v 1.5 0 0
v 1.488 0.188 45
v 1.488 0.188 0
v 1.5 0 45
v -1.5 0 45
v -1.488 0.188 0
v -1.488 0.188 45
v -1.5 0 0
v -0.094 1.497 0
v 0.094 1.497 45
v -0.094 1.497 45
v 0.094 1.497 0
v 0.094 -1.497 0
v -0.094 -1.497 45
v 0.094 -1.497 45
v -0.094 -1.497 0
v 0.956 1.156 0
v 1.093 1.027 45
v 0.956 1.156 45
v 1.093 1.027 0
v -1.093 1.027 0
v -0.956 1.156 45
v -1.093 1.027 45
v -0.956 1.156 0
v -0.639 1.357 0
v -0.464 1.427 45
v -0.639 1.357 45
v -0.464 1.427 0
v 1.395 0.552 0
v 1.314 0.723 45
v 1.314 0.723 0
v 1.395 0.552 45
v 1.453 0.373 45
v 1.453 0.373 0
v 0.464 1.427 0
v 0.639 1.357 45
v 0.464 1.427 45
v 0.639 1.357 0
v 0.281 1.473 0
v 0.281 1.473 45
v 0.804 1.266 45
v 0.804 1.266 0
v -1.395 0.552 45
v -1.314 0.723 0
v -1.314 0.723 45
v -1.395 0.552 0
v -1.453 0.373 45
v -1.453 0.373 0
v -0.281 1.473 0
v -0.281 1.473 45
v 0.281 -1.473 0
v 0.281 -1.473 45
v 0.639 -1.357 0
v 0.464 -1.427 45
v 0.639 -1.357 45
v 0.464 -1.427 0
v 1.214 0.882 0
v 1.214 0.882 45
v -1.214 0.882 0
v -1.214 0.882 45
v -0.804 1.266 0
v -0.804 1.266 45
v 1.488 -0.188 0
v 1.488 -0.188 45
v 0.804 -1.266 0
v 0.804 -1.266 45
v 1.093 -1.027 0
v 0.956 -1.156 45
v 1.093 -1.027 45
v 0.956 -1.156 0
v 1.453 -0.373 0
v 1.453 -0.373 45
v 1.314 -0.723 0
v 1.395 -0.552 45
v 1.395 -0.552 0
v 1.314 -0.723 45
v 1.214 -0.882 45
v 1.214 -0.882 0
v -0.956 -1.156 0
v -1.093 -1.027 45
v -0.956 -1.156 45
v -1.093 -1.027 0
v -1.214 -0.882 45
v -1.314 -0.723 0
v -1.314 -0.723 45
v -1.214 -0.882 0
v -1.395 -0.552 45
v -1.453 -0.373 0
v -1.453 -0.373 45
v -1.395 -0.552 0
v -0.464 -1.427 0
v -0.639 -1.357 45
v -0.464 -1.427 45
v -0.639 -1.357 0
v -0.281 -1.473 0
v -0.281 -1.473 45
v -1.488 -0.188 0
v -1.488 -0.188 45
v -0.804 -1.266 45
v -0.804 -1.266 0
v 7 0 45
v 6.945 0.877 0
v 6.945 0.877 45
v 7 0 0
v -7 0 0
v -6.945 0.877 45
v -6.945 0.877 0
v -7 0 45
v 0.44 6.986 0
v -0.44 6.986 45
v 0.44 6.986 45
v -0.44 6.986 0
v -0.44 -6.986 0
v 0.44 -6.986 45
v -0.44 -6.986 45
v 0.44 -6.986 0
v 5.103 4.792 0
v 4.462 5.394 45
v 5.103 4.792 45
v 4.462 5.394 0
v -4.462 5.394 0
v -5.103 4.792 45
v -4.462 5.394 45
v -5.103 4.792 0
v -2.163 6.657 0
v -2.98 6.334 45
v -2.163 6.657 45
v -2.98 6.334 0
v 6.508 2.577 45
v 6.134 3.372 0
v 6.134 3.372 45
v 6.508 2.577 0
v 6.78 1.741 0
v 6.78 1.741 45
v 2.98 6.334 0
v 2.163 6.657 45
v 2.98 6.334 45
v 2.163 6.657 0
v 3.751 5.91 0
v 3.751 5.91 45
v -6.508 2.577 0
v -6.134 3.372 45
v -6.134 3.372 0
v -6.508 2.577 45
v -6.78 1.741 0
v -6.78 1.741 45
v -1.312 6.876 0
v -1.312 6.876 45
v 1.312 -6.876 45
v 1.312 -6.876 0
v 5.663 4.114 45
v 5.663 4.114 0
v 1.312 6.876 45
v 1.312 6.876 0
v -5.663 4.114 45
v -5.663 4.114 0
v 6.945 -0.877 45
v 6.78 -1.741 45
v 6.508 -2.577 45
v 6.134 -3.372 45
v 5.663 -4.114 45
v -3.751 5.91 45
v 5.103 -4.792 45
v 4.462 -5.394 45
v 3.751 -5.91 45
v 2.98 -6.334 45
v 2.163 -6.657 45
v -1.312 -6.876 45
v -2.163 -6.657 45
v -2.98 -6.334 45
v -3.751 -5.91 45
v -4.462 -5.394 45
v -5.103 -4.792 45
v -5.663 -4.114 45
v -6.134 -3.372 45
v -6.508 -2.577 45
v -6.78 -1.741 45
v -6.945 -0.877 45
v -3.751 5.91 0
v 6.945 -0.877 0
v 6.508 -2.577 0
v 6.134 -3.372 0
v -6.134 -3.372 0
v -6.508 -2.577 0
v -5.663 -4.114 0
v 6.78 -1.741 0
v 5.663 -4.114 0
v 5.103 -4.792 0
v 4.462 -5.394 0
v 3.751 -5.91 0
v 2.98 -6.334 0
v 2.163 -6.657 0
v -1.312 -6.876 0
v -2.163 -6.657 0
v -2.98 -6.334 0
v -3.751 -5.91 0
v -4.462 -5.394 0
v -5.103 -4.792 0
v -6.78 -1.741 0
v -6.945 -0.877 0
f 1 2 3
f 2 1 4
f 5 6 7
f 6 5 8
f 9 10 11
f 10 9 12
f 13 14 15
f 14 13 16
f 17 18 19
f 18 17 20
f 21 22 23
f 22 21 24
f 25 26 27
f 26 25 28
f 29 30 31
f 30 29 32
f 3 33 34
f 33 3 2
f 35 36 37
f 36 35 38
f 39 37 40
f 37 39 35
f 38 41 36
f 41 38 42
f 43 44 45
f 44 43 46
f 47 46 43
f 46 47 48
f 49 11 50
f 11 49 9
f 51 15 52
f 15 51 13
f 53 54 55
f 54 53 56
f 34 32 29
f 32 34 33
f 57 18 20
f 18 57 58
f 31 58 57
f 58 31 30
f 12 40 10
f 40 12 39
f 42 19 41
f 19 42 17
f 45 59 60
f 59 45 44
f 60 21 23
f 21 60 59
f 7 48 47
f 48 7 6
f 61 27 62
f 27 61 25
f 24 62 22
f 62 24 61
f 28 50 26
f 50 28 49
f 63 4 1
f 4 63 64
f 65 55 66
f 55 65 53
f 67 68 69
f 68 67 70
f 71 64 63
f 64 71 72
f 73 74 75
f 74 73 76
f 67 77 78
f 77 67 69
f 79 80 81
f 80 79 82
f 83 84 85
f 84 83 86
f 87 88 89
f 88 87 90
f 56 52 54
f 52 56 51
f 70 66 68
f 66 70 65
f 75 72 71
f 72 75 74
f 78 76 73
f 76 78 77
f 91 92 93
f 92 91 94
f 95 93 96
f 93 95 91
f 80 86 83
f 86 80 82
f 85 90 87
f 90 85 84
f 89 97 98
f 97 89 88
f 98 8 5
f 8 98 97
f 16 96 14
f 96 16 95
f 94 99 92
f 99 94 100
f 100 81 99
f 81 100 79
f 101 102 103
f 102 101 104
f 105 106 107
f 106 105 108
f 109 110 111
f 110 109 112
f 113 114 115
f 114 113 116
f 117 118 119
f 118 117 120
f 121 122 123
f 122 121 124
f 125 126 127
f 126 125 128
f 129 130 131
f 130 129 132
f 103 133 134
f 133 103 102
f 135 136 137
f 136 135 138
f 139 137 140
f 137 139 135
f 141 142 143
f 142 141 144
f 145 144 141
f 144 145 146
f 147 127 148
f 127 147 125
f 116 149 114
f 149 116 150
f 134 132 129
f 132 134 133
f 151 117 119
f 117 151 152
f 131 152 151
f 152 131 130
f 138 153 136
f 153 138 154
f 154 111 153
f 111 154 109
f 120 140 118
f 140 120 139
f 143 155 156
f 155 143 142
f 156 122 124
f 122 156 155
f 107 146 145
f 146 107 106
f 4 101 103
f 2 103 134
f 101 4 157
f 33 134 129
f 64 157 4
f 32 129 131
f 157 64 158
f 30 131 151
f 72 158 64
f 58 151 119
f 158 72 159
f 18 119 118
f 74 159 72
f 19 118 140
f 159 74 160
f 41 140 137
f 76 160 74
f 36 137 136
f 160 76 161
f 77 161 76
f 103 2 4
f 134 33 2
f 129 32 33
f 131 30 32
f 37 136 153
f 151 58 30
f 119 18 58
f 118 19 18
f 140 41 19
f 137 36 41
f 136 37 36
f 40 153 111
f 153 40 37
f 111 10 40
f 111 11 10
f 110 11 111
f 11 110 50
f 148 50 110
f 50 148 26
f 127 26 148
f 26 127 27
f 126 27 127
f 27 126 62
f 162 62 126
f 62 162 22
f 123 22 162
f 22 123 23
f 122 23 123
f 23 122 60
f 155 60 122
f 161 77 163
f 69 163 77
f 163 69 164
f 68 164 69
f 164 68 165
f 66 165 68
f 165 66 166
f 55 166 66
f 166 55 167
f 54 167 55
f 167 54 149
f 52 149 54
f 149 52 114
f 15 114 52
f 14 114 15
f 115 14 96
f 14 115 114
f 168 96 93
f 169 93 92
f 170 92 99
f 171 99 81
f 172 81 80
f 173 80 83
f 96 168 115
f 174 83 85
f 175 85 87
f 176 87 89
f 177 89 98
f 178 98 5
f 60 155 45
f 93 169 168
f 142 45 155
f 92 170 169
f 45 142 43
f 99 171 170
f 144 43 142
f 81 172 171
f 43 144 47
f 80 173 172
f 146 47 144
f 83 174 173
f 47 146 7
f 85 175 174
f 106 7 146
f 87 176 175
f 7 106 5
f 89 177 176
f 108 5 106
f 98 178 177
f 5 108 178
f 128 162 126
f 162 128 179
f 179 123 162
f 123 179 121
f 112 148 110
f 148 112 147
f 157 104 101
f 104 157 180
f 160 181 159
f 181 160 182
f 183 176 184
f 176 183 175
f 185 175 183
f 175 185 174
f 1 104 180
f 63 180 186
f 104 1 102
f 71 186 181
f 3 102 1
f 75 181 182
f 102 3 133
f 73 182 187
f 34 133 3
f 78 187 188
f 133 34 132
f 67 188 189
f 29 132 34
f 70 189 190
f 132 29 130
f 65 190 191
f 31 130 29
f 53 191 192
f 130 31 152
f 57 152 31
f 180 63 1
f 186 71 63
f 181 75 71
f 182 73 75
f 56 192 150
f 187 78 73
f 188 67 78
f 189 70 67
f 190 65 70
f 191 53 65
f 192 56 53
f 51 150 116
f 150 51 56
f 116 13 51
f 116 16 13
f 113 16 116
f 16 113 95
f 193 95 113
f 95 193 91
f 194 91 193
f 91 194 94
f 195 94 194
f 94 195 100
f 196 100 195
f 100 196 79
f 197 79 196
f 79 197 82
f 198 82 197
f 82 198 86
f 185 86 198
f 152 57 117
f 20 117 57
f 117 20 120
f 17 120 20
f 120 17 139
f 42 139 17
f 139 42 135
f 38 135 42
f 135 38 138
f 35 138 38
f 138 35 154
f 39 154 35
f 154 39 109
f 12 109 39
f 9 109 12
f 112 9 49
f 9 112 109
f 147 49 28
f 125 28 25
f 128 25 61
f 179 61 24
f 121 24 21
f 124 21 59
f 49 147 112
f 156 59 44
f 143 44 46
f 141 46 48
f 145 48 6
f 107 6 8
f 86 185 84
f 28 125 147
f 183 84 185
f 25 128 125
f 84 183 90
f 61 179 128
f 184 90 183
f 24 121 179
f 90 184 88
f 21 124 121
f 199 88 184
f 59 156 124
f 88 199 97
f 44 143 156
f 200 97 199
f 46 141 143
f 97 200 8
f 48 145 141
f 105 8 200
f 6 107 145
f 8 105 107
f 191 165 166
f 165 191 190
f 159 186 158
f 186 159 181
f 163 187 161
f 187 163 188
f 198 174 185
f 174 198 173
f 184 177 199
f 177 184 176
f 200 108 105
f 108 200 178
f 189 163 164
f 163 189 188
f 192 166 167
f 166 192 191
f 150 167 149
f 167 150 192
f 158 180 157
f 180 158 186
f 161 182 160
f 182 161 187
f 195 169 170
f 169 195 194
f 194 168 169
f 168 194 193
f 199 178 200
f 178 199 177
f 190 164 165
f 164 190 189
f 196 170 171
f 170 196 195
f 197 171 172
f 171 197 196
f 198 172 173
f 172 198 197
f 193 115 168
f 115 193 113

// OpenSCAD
$fn = 50;


difference() {
	union() {
		cylinder(h = 45, r = 7.0000000000);
	}
	union() {
		translate(v = [0, 0, -100]) {
			cylinder(h = 200, r = 1.5000000000);
		}
		translate(v = [0, 0, -100]) {
			cylinder(h = 200, r = 1.5000000000);
		}
	}
}
